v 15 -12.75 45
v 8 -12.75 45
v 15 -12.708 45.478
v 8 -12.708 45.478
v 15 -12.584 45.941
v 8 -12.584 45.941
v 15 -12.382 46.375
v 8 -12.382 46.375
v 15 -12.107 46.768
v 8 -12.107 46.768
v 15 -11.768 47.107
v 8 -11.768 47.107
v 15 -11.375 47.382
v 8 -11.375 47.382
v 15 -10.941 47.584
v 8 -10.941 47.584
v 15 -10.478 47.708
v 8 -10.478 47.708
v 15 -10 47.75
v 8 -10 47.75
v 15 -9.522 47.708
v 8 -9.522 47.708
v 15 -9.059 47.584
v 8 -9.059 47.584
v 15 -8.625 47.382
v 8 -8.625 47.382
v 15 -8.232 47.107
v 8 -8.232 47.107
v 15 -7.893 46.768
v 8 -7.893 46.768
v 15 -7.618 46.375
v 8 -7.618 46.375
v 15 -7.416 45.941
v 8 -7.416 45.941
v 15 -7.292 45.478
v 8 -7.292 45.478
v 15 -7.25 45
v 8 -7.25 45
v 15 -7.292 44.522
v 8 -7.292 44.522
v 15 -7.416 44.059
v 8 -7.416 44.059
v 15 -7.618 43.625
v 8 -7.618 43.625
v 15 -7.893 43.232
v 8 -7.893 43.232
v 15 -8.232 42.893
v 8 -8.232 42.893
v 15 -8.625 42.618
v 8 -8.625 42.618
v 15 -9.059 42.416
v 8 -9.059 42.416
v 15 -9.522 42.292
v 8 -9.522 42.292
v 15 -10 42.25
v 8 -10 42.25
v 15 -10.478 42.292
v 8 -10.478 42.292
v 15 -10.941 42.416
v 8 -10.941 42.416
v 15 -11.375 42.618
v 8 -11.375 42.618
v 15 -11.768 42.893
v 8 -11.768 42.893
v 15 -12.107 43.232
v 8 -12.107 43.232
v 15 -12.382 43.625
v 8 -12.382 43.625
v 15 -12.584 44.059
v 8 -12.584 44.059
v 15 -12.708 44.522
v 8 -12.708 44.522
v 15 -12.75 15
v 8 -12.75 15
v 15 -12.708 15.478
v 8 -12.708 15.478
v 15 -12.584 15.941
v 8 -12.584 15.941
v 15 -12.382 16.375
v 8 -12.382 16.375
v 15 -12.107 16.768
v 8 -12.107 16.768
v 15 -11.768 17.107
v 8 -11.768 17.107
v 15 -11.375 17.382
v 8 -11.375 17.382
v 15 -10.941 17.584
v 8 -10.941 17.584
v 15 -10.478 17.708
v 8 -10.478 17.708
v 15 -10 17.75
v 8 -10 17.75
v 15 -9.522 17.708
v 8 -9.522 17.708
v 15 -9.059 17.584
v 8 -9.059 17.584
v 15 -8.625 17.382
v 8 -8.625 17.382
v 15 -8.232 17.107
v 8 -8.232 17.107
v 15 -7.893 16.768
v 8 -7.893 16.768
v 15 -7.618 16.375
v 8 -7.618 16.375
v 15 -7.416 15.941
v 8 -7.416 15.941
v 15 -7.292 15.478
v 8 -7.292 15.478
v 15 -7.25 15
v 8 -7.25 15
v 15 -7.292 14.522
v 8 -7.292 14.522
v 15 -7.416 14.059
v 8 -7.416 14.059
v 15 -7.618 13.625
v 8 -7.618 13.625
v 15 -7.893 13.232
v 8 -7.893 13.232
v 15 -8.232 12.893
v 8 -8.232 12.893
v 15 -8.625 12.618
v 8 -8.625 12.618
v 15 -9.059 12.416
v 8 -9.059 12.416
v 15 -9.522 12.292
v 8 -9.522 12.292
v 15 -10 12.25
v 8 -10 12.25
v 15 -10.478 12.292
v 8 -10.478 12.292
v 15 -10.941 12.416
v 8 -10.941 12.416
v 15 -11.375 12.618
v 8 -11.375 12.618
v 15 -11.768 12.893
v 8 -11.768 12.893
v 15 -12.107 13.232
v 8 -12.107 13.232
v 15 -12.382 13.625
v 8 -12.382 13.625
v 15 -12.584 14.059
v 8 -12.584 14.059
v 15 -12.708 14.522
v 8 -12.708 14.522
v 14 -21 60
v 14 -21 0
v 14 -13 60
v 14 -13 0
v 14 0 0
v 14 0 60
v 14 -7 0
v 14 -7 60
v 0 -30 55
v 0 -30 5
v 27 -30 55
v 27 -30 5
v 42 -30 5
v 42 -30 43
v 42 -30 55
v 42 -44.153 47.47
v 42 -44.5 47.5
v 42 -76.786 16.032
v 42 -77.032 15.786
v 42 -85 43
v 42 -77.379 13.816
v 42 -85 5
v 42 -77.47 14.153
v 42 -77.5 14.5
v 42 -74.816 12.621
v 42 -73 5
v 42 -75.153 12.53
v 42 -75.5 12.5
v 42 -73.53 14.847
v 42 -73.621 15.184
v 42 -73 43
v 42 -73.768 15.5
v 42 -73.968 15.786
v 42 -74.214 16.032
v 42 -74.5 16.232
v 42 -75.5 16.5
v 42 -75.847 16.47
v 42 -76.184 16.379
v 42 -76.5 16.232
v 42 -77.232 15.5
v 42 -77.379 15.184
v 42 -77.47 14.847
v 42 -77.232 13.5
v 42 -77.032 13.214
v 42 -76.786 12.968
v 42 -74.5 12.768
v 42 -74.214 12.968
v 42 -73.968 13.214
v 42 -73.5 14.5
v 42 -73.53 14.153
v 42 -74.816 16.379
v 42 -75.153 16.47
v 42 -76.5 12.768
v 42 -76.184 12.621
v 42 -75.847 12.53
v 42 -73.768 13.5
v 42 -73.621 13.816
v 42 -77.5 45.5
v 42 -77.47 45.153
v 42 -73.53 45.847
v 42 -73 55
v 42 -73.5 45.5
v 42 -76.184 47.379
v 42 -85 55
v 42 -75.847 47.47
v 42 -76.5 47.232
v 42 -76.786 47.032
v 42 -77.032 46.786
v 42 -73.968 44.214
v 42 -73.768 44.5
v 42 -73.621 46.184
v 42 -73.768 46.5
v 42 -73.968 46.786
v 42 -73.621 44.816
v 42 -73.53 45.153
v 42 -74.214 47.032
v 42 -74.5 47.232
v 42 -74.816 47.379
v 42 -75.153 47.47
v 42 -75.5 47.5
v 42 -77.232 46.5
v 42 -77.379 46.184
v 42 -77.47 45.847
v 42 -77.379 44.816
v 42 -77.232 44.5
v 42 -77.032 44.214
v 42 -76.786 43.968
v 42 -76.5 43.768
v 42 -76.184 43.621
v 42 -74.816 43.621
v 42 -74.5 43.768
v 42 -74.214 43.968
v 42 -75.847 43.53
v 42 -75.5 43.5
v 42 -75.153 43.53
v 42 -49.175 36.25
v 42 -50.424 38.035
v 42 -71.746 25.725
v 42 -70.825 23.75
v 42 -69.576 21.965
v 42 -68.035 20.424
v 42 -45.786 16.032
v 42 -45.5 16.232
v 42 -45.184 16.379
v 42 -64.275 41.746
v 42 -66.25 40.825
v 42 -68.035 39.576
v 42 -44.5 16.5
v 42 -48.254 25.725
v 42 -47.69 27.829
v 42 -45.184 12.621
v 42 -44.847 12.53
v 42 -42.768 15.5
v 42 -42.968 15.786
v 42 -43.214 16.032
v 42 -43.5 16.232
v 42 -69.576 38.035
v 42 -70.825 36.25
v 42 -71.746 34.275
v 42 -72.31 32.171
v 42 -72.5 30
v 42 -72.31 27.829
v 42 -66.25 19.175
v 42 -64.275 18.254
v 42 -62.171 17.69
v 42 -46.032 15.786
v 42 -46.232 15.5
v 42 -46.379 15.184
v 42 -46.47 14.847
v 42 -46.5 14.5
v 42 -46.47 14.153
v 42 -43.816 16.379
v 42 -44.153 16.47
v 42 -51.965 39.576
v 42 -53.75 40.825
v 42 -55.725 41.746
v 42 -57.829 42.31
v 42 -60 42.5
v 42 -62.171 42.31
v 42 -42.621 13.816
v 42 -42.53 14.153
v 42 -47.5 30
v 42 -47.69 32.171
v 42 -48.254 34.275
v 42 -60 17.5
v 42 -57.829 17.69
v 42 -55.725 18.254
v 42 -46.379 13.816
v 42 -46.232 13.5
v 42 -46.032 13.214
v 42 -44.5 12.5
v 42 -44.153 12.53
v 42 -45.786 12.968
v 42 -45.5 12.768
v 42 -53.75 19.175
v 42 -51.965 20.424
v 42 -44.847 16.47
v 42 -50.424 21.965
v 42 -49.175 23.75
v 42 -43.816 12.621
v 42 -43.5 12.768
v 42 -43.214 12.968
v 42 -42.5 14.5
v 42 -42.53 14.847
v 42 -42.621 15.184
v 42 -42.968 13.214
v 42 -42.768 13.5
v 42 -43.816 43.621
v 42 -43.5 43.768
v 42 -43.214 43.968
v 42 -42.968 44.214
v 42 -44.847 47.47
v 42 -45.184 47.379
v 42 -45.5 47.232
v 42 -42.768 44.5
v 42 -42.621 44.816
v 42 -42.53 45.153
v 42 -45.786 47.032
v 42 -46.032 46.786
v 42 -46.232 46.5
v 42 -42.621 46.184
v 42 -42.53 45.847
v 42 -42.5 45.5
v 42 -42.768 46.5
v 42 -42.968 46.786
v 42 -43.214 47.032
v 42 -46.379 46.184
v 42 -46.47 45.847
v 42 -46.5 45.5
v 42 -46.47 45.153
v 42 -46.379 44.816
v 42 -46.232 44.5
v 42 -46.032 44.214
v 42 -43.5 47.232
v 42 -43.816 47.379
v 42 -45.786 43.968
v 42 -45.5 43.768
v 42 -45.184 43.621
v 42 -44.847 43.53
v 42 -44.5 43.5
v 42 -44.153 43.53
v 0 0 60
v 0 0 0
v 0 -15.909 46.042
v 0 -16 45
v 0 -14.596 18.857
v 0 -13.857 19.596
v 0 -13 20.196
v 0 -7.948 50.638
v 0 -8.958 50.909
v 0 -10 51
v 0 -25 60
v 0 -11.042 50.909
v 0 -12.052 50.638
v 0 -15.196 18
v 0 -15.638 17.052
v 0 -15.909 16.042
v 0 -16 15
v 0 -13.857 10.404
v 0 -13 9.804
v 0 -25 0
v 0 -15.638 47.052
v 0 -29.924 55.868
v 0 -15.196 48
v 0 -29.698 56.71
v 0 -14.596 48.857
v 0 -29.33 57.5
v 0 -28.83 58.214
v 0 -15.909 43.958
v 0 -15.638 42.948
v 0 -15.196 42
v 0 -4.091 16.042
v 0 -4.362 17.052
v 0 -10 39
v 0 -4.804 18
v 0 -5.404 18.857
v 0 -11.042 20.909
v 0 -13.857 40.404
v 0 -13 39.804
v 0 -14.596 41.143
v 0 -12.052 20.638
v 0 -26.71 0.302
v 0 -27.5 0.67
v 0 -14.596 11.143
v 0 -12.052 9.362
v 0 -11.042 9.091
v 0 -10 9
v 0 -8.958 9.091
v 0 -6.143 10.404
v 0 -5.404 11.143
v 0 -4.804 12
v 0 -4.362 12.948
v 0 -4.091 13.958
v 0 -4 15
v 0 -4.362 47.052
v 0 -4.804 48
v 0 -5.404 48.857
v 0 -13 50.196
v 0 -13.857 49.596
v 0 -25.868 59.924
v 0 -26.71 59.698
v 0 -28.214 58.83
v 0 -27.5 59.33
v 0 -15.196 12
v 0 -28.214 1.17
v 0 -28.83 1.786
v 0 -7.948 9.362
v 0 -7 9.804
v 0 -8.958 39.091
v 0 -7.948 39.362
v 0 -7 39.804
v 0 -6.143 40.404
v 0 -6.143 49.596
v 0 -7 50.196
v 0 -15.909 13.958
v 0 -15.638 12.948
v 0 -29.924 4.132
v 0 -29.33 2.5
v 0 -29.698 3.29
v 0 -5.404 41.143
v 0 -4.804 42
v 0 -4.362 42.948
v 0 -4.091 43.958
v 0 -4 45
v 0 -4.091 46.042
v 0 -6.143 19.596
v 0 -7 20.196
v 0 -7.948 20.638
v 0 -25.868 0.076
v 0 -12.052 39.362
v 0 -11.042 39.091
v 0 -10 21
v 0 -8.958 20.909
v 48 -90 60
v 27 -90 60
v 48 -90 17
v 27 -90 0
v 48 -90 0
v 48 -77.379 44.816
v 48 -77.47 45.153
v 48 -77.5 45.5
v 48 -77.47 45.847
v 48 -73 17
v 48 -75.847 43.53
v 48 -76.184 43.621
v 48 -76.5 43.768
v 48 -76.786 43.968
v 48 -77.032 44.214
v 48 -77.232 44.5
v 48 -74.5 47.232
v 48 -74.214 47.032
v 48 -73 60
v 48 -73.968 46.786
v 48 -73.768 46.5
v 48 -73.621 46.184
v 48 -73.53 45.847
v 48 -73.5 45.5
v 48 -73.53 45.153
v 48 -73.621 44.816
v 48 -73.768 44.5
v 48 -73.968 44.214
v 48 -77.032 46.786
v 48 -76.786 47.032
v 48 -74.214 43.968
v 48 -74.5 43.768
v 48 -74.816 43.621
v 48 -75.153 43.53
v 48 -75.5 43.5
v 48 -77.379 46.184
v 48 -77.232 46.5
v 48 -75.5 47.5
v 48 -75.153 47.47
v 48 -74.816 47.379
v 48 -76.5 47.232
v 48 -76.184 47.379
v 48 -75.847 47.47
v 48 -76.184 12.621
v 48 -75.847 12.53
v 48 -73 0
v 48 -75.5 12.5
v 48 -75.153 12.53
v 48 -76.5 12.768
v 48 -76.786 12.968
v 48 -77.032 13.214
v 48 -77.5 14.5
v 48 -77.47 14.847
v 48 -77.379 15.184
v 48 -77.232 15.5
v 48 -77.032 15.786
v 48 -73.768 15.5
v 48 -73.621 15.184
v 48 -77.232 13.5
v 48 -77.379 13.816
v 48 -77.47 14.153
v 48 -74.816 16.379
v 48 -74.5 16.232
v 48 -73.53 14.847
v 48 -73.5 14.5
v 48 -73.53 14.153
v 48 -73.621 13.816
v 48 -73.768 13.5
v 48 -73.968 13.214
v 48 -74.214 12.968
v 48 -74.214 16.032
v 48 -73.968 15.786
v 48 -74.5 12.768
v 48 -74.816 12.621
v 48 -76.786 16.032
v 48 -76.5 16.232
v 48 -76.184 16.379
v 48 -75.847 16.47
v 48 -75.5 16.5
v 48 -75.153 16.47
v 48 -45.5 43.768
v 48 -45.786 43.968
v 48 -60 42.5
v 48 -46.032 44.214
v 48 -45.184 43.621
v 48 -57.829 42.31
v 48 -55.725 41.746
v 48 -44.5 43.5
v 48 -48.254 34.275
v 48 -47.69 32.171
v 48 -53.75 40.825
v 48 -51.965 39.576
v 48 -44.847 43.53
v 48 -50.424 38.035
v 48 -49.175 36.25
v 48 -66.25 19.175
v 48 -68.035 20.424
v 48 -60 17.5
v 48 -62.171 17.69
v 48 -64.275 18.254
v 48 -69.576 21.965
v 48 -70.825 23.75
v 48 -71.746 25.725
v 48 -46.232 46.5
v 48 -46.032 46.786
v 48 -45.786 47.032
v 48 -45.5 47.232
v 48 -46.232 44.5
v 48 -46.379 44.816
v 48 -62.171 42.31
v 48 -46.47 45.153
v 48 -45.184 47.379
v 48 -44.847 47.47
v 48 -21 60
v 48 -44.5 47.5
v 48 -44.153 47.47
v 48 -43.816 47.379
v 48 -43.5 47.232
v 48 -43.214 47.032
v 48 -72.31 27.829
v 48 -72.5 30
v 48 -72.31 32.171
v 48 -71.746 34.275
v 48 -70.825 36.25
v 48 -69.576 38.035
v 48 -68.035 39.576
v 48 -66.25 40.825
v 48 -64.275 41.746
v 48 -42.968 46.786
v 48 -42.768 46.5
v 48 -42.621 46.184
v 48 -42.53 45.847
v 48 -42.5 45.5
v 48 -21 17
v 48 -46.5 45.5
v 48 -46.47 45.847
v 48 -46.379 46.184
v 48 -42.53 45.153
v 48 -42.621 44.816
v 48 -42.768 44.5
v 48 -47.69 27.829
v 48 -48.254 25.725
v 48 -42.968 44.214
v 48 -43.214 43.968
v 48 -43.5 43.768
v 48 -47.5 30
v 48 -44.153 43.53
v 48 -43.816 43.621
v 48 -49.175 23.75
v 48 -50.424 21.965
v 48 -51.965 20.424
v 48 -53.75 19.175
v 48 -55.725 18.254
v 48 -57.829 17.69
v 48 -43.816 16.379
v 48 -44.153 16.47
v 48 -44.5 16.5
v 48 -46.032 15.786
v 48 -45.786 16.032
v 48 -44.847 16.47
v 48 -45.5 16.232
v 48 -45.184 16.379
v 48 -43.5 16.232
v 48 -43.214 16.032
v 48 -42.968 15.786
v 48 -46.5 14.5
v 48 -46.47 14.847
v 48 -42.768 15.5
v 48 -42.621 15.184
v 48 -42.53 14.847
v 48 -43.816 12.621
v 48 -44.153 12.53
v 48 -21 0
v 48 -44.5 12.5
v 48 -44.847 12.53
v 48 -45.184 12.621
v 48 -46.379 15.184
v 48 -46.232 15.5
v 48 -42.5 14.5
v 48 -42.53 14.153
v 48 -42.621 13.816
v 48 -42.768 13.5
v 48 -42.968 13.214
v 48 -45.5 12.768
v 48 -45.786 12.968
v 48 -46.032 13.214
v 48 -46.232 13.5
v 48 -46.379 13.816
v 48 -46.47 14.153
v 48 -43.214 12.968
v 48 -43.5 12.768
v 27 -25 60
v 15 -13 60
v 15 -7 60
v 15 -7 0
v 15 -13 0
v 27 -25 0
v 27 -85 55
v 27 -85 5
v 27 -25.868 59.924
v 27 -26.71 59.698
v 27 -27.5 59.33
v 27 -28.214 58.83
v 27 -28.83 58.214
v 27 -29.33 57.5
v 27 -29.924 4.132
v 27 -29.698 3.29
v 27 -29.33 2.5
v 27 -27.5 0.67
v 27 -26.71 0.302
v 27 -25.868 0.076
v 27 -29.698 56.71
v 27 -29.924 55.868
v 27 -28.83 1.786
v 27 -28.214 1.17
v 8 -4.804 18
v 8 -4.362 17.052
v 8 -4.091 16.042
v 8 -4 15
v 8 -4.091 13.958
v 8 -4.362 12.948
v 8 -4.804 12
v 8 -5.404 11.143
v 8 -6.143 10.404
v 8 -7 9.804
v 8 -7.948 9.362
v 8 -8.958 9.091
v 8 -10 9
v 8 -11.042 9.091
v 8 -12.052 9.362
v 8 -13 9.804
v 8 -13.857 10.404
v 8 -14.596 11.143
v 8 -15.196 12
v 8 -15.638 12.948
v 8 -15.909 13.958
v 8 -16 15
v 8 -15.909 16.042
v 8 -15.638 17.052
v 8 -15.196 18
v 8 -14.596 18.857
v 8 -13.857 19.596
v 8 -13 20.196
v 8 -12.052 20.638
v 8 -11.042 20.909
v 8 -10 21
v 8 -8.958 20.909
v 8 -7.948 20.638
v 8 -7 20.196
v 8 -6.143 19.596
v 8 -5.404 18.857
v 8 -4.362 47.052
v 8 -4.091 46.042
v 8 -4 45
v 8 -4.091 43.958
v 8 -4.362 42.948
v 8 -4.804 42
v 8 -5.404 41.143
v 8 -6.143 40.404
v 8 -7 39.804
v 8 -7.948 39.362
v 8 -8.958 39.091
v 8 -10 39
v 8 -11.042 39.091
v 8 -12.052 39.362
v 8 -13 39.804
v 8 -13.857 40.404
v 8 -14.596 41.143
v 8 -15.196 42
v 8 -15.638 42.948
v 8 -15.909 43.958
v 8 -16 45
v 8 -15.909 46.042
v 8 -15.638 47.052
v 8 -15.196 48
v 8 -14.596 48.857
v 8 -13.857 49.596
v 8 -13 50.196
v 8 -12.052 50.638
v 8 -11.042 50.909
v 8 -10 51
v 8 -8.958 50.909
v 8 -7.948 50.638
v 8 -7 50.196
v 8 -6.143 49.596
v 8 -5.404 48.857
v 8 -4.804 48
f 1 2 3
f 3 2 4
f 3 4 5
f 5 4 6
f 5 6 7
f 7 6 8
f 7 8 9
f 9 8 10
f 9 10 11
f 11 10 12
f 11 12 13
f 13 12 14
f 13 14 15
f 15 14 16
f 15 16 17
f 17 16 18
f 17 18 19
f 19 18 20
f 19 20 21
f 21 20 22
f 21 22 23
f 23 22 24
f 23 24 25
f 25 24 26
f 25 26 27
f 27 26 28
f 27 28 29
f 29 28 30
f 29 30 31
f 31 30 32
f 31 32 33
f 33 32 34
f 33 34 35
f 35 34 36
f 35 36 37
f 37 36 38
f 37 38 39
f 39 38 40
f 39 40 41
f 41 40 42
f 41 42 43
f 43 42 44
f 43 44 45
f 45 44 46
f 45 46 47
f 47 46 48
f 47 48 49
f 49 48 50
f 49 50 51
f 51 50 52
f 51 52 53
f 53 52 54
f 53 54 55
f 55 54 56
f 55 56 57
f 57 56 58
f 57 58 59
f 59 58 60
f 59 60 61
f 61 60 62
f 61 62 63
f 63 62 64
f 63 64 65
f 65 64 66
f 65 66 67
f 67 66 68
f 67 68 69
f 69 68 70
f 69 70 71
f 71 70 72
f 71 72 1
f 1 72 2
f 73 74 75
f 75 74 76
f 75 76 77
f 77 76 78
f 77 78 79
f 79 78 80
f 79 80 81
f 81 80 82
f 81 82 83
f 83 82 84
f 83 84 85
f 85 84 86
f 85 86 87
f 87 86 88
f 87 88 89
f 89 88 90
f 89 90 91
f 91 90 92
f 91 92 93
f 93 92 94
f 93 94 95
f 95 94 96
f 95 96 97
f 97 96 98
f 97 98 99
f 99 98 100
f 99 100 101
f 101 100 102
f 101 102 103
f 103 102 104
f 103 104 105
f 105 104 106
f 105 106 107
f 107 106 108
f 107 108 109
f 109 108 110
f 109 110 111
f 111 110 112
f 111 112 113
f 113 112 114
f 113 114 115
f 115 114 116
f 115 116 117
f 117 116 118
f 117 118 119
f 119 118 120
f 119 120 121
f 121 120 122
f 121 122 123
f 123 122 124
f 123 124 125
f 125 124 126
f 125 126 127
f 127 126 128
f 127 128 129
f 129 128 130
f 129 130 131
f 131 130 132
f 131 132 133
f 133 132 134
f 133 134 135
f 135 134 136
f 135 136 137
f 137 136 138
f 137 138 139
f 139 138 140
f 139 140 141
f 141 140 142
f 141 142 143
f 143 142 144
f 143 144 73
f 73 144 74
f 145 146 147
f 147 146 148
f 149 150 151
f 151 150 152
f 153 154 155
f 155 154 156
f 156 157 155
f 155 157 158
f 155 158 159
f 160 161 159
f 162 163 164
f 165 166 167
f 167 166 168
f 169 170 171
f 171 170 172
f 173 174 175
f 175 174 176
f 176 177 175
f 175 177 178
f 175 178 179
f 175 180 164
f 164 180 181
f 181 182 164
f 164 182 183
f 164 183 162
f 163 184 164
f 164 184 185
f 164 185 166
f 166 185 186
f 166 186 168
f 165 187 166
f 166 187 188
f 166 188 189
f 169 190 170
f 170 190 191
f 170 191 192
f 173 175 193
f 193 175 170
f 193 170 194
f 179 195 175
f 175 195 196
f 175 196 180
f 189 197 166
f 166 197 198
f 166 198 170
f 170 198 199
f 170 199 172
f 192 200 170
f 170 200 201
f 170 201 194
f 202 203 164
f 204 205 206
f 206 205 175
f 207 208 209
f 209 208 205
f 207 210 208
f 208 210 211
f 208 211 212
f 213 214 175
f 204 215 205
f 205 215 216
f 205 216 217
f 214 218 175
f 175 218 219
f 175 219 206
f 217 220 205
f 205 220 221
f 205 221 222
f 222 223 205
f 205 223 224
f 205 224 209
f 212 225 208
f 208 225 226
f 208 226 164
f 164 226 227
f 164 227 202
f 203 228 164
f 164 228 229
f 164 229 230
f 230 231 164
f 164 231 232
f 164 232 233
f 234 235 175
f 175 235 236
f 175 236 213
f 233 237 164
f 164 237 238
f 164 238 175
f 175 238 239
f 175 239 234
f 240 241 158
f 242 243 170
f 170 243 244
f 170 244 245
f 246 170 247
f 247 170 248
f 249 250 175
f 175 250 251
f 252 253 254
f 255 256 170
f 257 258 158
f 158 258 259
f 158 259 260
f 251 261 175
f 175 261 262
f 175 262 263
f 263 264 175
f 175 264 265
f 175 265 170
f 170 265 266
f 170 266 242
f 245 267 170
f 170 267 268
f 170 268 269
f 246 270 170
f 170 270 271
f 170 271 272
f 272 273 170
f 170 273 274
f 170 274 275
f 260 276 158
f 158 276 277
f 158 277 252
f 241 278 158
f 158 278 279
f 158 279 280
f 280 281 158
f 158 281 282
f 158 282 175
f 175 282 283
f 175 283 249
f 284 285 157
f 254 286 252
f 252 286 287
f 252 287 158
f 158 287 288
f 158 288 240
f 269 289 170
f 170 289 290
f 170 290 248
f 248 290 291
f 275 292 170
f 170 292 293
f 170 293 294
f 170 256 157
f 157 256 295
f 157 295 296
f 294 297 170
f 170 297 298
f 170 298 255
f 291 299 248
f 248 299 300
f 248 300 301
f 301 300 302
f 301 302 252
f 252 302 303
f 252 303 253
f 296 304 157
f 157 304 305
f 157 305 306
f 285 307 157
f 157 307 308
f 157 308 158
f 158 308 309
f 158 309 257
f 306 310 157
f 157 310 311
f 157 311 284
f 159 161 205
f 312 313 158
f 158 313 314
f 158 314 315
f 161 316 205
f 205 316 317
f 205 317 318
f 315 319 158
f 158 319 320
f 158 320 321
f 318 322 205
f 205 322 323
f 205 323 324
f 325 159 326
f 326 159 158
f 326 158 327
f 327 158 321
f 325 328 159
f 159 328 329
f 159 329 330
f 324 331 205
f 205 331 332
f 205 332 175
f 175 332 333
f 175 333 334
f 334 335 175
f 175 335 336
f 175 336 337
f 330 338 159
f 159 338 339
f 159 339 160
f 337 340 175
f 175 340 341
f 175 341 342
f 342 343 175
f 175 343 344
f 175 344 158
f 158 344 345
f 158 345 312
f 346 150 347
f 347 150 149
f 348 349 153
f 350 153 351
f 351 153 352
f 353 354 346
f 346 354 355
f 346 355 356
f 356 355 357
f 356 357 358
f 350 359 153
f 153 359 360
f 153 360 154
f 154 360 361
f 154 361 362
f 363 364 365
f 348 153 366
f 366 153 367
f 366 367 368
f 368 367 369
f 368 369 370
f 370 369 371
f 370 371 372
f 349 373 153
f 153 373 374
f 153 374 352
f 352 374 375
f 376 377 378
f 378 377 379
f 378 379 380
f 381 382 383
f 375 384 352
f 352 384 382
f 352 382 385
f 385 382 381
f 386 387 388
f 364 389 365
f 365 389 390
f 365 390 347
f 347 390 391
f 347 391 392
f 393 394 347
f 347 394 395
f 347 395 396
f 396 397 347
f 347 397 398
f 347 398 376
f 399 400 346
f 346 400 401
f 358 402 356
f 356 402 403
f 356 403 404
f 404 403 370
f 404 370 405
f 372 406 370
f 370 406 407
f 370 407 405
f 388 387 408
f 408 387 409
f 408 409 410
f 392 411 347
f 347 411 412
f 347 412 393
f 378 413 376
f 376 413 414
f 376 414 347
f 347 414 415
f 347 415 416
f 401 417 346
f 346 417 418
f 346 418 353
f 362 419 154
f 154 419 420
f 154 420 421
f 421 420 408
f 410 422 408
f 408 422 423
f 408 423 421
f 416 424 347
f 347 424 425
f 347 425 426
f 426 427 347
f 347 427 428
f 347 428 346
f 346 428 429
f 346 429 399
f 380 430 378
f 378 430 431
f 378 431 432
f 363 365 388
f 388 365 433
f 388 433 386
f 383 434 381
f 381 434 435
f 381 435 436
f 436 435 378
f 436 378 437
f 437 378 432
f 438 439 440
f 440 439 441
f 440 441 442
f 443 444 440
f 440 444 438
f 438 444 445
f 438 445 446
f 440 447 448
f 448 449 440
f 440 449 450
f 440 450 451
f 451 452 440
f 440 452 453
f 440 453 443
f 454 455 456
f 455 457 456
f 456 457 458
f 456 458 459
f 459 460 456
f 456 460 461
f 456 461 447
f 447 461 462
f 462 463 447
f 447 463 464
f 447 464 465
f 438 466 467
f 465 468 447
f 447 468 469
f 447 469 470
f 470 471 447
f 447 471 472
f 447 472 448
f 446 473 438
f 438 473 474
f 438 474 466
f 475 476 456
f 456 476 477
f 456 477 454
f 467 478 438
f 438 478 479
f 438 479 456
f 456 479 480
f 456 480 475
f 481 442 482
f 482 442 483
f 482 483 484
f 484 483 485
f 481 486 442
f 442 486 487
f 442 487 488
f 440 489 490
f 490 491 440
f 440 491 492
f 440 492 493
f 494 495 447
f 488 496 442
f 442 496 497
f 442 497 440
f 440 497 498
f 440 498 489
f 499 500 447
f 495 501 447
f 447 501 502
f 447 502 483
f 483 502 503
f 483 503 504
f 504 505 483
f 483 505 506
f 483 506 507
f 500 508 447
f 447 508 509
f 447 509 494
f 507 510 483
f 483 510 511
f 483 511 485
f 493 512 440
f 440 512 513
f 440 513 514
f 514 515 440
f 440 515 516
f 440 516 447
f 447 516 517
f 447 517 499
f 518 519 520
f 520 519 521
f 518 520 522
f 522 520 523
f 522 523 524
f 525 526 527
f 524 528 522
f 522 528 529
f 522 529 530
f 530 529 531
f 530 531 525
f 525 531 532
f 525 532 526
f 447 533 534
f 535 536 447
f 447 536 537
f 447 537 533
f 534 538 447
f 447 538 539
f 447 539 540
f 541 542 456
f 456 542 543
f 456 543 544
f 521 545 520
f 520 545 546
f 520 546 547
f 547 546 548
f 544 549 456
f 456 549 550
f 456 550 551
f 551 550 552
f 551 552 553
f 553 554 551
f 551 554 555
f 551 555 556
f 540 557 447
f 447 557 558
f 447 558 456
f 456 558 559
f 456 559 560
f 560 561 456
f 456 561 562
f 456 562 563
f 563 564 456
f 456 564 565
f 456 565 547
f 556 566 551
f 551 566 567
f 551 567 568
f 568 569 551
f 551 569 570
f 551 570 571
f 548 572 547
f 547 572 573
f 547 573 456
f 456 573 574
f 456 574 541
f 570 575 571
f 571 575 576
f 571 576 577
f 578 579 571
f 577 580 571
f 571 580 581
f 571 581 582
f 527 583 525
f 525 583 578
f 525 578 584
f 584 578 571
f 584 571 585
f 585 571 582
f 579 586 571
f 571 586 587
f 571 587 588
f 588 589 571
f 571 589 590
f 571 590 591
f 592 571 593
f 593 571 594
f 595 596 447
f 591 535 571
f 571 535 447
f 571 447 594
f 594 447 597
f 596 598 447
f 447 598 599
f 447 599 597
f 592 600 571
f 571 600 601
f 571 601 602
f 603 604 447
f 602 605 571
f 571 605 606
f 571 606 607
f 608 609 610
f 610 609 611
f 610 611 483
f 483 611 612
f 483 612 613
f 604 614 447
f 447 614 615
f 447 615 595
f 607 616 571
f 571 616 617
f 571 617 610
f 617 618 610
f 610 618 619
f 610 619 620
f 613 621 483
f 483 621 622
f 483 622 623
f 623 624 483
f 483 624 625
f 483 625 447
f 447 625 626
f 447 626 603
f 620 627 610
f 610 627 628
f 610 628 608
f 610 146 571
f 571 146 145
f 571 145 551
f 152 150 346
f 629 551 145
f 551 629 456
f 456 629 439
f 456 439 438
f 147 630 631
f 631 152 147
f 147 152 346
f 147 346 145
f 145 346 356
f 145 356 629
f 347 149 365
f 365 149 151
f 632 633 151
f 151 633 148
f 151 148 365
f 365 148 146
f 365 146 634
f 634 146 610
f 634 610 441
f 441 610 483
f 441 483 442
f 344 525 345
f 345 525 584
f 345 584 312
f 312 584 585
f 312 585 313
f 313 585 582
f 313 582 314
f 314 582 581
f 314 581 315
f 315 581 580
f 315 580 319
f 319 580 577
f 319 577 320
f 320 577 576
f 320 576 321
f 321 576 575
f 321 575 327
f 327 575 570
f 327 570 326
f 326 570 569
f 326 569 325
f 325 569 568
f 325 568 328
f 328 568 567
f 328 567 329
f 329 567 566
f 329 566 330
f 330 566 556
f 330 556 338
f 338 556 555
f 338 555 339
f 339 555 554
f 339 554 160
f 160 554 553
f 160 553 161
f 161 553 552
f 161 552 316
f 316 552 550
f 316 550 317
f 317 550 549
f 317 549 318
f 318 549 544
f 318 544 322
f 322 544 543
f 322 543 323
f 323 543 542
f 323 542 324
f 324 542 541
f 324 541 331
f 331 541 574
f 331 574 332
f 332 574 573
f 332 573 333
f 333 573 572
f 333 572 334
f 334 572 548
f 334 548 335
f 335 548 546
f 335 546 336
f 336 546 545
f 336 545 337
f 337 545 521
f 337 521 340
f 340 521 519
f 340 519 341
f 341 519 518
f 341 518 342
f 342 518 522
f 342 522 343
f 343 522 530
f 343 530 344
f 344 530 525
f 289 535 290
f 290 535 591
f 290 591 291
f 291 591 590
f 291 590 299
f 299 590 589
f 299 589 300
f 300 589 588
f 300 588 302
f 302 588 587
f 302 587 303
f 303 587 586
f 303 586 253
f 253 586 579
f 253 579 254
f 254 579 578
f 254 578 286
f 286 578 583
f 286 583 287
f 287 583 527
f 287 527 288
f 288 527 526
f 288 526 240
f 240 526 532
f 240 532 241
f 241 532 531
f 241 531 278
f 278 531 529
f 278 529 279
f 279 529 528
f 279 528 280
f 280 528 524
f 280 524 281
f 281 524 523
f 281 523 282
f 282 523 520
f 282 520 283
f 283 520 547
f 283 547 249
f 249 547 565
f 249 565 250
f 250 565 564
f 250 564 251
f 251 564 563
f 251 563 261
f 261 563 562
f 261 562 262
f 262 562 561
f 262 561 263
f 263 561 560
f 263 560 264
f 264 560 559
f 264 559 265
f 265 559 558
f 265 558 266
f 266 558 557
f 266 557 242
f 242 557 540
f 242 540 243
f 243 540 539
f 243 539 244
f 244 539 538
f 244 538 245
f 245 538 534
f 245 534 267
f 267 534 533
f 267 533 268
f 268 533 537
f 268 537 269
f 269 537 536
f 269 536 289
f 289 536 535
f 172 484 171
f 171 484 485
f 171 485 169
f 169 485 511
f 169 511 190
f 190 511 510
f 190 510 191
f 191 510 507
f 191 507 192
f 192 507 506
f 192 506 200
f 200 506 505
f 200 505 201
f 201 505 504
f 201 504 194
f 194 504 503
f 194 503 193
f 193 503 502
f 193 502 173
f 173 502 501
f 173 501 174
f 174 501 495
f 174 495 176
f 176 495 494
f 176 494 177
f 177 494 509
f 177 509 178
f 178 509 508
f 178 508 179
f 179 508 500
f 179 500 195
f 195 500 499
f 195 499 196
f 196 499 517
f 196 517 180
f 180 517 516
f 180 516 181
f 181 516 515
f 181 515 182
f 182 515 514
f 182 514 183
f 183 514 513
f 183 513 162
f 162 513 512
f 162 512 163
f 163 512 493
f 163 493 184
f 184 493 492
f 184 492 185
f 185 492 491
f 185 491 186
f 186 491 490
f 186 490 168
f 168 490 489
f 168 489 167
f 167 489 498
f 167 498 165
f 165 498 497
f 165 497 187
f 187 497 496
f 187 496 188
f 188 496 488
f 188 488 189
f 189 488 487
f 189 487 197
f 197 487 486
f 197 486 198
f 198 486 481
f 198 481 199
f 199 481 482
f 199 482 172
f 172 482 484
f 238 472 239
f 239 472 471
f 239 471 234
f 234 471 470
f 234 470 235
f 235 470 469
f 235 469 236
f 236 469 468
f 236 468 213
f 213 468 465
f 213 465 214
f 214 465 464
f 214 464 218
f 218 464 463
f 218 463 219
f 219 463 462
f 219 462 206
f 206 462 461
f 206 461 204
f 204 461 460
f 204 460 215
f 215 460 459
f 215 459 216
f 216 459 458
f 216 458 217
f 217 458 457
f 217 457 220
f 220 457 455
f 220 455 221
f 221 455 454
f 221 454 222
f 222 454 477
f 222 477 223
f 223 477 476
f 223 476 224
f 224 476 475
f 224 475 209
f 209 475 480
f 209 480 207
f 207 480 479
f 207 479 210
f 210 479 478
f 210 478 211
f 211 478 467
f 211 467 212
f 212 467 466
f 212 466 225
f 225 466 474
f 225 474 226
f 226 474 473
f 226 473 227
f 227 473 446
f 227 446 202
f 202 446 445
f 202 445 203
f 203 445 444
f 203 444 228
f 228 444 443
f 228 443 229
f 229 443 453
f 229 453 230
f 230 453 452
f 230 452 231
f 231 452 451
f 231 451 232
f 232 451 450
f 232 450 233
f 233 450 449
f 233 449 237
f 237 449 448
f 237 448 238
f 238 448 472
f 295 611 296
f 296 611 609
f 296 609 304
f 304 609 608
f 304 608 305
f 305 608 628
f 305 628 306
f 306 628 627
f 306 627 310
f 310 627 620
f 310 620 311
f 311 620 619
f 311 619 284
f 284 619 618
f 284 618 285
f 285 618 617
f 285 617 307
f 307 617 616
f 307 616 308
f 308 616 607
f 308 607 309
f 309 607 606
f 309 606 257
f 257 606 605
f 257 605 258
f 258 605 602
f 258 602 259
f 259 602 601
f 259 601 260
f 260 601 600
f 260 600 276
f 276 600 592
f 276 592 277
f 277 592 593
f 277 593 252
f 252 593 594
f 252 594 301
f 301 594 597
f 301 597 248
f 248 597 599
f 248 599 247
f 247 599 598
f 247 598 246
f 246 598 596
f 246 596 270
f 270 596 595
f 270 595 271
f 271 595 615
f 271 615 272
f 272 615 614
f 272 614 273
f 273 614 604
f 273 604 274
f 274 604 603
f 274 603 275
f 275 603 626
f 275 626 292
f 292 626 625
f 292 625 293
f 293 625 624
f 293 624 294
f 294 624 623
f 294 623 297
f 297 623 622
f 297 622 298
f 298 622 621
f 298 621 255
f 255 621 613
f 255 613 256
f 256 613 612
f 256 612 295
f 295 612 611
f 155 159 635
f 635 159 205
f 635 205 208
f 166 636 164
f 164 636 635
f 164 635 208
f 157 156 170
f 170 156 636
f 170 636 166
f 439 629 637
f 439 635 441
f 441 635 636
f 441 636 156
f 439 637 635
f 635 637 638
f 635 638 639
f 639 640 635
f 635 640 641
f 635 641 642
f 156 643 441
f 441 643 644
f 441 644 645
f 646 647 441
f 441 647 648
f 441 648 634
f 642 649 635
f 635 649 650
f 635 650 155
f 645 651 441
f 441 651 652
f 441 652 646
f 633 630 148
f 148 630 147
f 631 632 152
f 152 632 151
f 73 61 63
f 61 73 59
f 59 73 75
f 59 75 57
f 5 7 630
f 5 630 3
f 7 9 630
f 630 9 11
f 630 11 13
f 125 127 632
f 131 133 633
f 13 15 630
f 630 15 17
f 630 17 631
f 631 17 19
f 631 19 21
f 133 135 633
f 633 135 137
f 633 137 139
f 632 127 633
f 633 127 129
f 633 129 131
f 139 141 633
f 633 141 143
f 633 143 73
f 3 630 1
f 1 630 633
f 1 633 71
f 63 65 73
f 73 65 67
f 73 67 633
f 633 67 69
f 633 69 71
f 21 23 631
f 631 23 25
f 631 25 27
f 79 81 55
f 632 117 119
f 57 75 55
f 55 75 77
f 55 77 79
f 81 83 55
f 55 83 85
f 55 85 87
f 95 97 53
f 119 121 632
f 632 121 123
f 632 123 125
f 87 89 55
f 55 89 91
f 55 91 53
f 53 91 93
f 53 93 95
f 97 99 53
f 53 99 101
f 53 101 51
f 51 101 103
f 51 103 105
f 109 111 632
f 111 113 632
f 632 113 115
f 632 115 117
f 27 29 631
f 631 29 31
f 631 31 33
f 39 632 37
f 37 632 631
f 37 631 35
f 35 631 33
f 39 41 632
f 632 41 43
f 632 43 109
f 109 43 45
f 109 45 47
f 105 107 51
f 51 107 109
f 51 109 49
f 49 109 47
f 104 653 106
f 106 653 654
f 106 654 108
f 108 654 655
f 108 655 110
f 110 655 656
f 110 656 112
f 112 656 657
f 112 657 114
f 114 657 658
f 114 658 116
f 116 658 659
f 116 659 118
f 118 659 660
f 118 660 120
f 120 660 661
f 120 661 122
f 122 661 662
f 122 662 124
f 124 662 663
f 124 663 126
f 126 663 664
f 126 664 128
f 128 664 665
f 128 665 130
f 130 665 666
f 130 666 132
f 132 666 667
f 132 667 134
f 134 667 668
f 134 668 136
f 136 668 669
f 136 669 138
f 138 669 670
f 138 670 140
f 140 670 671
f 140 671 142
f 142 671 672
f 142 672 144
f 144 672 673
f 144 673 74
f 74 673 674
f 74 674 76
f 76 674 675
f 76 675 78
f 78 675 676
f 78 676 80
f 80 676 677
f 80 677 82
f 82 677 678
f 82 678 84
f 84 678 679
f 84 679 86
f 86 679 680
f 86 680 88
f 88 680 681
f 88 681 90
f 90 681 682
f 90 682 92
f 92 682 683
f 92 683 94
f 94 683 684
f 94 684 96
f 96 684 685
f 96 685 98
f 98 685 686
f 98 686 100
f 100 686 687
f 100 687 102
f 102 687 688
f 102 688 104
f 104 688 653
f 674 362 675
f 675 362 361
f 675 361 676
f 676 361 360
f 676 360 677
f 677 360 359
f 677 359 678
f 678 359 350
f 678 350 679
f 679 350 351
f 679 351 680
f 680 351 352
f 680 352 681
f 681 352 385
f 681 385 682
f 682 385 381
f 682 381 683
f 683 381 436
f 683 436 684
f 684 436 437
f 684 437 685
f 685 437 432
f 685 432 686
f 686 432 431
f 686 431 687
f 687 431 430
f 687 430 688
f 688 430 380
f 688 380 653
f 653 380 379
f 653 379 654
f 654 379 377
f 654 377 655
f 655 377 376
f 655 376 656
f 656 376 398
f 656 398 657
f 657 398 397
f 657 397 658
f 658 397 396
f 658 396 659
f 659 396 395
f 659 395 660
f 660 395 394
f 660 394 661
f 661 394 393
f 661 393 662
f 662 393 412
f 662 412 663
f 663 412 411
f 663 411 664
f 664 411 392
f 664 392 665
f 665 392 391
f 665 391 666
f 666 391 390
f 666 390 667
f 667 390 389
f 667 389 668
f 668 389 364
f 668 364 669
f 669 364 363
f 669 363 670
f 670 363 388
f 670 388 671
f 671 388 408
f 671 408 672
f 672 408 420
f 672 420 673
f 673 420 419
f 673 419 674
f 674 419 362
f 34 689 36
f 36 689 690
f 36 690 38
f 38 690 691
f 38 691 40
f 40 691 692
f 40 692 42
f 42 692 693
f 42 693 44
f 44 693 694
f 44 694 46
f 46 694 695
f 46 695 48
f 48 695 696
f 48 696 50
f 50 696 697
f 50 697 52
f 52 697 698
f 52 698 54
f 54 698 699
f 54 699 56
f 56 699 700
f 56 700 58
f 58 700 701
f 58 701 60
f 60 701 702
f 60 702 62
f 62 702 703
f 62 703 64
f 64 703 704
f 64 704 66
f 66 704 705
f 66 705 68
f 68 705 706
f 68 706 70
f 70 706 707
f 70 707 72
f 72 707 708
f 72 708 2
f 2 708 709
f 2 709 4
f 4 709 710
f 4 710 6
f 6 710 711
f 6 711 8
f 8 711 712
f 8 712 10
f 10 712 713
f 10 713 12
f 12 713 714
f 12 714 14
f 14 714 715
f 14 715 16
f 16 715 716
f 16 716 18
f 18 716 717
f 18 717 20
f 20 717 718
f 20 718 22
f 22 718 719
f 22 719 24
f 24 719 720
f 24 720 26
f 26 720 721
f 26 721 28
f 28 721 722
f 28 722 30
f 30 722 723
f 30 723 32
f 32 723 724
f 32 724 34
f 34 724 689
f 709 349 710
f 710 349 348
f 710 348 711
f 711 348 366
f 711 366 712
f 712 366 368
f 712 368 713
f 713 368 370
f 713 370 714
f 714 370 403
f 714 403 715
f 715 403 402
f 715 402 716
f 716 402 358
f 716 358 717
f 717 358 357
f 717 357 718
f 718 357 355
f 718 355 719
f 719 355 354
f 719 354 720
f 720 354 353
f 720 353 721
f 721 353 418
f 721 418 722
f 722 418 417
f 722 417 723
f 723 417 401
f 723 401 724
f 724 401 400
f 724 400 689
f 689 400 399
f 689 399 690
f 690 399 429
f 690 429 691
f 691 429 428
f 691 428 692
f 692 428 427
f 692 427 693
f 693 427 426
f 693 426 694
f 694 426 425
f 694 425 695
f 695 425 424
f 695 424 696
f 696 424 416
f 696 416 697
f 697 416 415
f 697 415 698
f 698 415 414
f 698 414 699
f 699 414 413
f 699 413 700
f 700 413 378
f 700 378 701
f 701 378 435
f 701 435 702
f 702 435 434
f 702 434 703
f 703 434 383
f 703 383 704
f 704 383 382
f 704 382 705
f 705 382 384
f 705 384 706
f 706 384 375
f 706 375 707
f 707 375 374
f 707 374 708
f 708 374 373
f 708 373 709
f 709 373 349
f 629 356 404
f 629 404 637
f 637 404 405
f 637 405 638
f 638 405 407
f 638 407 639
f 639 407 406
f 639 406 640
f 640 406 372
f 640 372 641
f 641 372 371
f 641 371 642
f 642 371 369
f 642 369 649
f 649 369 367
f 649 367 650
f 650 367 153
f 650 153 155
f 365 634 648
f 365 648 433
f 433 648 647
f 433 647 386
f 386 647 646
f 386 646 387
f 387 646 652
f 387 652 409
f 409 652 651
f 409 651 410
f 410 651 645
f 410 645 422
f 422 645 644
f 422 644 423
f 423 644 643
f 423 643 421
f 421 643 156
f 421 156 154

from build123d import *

# Parameters (mm, degrees)
SALIENTE_EXTRUIR1_DEPTH = 60
CORTAR_EXTRUIR1_REACH   = 50
CROQUIS2_R              = 2
CROQUIS2_R_2            = 12.5
SALIENTE_EXTRUIR2_DEPTH = 15
CROQUIS4_W              = 60
CROQUIS4_H              = 6
SALIENTE_EXTRUIR3_DEPTH = 1
CORTAR_EXTRUIR2_REACH   = 50
CROQUIS5_R              = 2.75
CROQUIS6_R              = 6
CORTAR_EXTRUIR3_DEPTH   = 8
REDONDEO1_R             = 5


with BuildPart() as part:
    # Croquis1 → Saliente-Extruir1 (new body)
    with BuildSketch(Plane.XY):
        Polygon((0, 0), (0, -30), (42, -30), (42, -90), (48, -90), (48, -21), (14, -21), (14, 0), align=None)
    extrude(amount=SALIENTE_EXTRUIR1_DEPTH)

    # Croquis2 → Cortar-Extruir1 (cut, up to next)
    with BuildSketch(Plane(origin=(48, 0, 0), x_dir=(0, 0, -1), z_dir=(1, 0, 0)), mode=Mode.PRIVATE) as cortar_extruir1_sk1:
        with Locations((-45.5, -44.5)):
            Circle(CROQUIS2_R)
    cortar_extruir1_tool1 = extrude(cortar_extruir1_sk1.sketch, amount=-CORTAR_EXTRUIR1_REACH, mode=Mode.PRIVATE) & part.part
    add(cortar_extruir1_tool1.solids().sort_by_distance((48, -44.5, 45.5))[0], mode=Mode.SUBTRACT)
    # Croquis2 → Cortar-Extruir1 (cut, up to next)
    with BuildSketch(Plane(origin=(48, 0, 0), x_dir=(0, 0, -1), z_dir=(1, 0, 0)), mode=Mode.PRIVATE) as cortar_extruir1_sk2:
        with Locations((-14.5, -44.5)):
            Circle(CROQUIS2_R)
    cortar_extruir1_tool2 = extrude(cortar_extruir1_sk2.sketch, amount=-CORTAR_EXTRUIR1_REACH, mode=Mode.PRIVATE) & part.part
    add(cortar_extruir1_tool2.solids().sort_by_distance((48, -44.5, 14.5))[0], mode=Mode.SUBTRACT)
    # Croquis2 → Cortar-Extruir1 (cut, up to next)
    with BuildSketch(Plane(origin=(48, 0, 0), x_dir=(0, 0, -1), z_dir=(1, 0, 0)), mode=Mode.PRIVATE) as cortar_extruir1_sk3:
        with Locations((-45.5, -75.5)):
            Circle(CROQUIS2_R)
    cortar_extruir1_tool3 = extrude(cortar_extruir1_sk3.sketch, amount=-CORTAR_EXTRUIR1_REACH, mode=Mode.PRIVATE) & part.part
    add(cortar_extruir1_tool3.solids().sort_by_distance((48, -75.5, 45.5))[0], mode=Mode.SUBTRACT)
    # Croquis2 → Cortar-Extruir1 (cut, up to next)
    with BuildSketch(Plane(origin=(48, 0, 0), x_dir=(0, 0, -1), z_dir=(1, 0, 0)), mode=Mode.PRIVATE) as cortar_extruir1_sk4:
        with Locations((-14.5, -75.5)):
            Circle(CROQUIS2_R)
    cortar_extruir1_tool4 = extrude(cortar_extruir1_sk4.sketch, amount=-CORTAR_EXTRUIR1_REACH, mode=Mode.PRIVATE) & part.part
    add(cortar_extruir1_tool4.solids().sort_by_distance((48, -75.5, 14.5))[0], mode=Mode.SUBTRACT)
    # Croquis2 → Cortar-Extruir1 (cut, up to next)
    with BuildSketch(Plane(origin=(48, 0, 0), x_dir=(0, 0, -1), z_dir=(1, 0, 0)), mode=Mode.PRIVATE) as cortar_extruir1_sk5:
        with Locations((-30, -60)):
            Circle(CROQUIS2_R_2)
    cortar_extruir1_tool5 = extrude(cortar_extruir1_sk5.sketch, amount=-CORTAR_EXTRUIR1_REACH, mode=Mode.PRIVATE) & part.part
    add(cortar_extruir1_tool5.solids().sort_by_distance((48, -60, 30))[0], mode=Mode.SUBTRACT)

    # Croquis3 → Saliente-Extruir2 (add)
    with BuildSketch(Plane.ZY.offset(-42)):
        Polygon((0, -30), (0, -90), (60, -90), (60, -30), (55, -30), (55, -85), (5, -85), (5, -30), align=None)
    extrude(amount=SALIENTE_EXTRUIR2_DEPTH)

    # Croquis4 → Saliente-Extruir3 (add)
    with BuildSketch(Plane(origin=(14, 0, 0), x_dir=(0, 0, -1), z_dir=(1, 0, 0))):
        with Locations((-30, -10)):
            Rectangle(CROQUIS4_W, CROQUIS4_H)
    extrude(amount=SALIENTE_EXTRUIR3_DEPTH)

    # Croquis5 → Cortar-Extruir2 (cut, up to next)
    with BuildSketch(Plane.ZY, mode=Mode.PRIVATE) as cortar_extruir2_sk1:
        with Locations((15, -10)):
            Circle(CROQUIS5_R)
    cortar_extruir2_tool1 = extrude(cortar_extruir2_sk1.sketch, amount=-CORTAR_EXTRUIR2_REACH, mode=Mode.PRIVATE) & part.part
    add(cortar_extruir2_tool1.solids().sort_by_distance((0, -10, 15))[0], mode=Mode.SUBTRACT)
    # Croquis5 → Cortar-Extruir2 (cut, up to next)
    with BuildSketch(Plane.ZY, mode=Mode.PRIVATE) as cortar_extruir2_sk2:
        with Locations((45, -10)):
            Circle(CROQUIS5_R)
    cortar_extruir2_tool2 = extrude(cortar_extruir2_sk2.sketch, amount=-CORTAR_EXTRUIR2_REACH, mode=Mode.PRIVATE) & part.part
    add(cortar_extruir2_tool2.solids().sort_by_distance((0, -10, 45))[0], mode=Mode.SUBTRACT)

    # Croquis6 → Cortar-Extruir3 (cut)
    with BuildSketch(Plane.ZY):
        with Locations((15, -10)):
            Circle(CROQUIS6_R)
        with Locations((45, -10)):
            Circle(CROQUIS6_R)
    extrude(amount=-CORTAR_EXTRUIR3_DEPTH, mode=Mode.SUBTRACT)

    # Redondeo1
    redondeo1_edges = [part.edges().sort_by_distance(p)[0] for p in [
        (13.5, -30, 60),
        (13.5, -30, 0),
    ]]
    fillet(redondeo1_edges, radius=REDONDEO1_R)


solid = part.part
